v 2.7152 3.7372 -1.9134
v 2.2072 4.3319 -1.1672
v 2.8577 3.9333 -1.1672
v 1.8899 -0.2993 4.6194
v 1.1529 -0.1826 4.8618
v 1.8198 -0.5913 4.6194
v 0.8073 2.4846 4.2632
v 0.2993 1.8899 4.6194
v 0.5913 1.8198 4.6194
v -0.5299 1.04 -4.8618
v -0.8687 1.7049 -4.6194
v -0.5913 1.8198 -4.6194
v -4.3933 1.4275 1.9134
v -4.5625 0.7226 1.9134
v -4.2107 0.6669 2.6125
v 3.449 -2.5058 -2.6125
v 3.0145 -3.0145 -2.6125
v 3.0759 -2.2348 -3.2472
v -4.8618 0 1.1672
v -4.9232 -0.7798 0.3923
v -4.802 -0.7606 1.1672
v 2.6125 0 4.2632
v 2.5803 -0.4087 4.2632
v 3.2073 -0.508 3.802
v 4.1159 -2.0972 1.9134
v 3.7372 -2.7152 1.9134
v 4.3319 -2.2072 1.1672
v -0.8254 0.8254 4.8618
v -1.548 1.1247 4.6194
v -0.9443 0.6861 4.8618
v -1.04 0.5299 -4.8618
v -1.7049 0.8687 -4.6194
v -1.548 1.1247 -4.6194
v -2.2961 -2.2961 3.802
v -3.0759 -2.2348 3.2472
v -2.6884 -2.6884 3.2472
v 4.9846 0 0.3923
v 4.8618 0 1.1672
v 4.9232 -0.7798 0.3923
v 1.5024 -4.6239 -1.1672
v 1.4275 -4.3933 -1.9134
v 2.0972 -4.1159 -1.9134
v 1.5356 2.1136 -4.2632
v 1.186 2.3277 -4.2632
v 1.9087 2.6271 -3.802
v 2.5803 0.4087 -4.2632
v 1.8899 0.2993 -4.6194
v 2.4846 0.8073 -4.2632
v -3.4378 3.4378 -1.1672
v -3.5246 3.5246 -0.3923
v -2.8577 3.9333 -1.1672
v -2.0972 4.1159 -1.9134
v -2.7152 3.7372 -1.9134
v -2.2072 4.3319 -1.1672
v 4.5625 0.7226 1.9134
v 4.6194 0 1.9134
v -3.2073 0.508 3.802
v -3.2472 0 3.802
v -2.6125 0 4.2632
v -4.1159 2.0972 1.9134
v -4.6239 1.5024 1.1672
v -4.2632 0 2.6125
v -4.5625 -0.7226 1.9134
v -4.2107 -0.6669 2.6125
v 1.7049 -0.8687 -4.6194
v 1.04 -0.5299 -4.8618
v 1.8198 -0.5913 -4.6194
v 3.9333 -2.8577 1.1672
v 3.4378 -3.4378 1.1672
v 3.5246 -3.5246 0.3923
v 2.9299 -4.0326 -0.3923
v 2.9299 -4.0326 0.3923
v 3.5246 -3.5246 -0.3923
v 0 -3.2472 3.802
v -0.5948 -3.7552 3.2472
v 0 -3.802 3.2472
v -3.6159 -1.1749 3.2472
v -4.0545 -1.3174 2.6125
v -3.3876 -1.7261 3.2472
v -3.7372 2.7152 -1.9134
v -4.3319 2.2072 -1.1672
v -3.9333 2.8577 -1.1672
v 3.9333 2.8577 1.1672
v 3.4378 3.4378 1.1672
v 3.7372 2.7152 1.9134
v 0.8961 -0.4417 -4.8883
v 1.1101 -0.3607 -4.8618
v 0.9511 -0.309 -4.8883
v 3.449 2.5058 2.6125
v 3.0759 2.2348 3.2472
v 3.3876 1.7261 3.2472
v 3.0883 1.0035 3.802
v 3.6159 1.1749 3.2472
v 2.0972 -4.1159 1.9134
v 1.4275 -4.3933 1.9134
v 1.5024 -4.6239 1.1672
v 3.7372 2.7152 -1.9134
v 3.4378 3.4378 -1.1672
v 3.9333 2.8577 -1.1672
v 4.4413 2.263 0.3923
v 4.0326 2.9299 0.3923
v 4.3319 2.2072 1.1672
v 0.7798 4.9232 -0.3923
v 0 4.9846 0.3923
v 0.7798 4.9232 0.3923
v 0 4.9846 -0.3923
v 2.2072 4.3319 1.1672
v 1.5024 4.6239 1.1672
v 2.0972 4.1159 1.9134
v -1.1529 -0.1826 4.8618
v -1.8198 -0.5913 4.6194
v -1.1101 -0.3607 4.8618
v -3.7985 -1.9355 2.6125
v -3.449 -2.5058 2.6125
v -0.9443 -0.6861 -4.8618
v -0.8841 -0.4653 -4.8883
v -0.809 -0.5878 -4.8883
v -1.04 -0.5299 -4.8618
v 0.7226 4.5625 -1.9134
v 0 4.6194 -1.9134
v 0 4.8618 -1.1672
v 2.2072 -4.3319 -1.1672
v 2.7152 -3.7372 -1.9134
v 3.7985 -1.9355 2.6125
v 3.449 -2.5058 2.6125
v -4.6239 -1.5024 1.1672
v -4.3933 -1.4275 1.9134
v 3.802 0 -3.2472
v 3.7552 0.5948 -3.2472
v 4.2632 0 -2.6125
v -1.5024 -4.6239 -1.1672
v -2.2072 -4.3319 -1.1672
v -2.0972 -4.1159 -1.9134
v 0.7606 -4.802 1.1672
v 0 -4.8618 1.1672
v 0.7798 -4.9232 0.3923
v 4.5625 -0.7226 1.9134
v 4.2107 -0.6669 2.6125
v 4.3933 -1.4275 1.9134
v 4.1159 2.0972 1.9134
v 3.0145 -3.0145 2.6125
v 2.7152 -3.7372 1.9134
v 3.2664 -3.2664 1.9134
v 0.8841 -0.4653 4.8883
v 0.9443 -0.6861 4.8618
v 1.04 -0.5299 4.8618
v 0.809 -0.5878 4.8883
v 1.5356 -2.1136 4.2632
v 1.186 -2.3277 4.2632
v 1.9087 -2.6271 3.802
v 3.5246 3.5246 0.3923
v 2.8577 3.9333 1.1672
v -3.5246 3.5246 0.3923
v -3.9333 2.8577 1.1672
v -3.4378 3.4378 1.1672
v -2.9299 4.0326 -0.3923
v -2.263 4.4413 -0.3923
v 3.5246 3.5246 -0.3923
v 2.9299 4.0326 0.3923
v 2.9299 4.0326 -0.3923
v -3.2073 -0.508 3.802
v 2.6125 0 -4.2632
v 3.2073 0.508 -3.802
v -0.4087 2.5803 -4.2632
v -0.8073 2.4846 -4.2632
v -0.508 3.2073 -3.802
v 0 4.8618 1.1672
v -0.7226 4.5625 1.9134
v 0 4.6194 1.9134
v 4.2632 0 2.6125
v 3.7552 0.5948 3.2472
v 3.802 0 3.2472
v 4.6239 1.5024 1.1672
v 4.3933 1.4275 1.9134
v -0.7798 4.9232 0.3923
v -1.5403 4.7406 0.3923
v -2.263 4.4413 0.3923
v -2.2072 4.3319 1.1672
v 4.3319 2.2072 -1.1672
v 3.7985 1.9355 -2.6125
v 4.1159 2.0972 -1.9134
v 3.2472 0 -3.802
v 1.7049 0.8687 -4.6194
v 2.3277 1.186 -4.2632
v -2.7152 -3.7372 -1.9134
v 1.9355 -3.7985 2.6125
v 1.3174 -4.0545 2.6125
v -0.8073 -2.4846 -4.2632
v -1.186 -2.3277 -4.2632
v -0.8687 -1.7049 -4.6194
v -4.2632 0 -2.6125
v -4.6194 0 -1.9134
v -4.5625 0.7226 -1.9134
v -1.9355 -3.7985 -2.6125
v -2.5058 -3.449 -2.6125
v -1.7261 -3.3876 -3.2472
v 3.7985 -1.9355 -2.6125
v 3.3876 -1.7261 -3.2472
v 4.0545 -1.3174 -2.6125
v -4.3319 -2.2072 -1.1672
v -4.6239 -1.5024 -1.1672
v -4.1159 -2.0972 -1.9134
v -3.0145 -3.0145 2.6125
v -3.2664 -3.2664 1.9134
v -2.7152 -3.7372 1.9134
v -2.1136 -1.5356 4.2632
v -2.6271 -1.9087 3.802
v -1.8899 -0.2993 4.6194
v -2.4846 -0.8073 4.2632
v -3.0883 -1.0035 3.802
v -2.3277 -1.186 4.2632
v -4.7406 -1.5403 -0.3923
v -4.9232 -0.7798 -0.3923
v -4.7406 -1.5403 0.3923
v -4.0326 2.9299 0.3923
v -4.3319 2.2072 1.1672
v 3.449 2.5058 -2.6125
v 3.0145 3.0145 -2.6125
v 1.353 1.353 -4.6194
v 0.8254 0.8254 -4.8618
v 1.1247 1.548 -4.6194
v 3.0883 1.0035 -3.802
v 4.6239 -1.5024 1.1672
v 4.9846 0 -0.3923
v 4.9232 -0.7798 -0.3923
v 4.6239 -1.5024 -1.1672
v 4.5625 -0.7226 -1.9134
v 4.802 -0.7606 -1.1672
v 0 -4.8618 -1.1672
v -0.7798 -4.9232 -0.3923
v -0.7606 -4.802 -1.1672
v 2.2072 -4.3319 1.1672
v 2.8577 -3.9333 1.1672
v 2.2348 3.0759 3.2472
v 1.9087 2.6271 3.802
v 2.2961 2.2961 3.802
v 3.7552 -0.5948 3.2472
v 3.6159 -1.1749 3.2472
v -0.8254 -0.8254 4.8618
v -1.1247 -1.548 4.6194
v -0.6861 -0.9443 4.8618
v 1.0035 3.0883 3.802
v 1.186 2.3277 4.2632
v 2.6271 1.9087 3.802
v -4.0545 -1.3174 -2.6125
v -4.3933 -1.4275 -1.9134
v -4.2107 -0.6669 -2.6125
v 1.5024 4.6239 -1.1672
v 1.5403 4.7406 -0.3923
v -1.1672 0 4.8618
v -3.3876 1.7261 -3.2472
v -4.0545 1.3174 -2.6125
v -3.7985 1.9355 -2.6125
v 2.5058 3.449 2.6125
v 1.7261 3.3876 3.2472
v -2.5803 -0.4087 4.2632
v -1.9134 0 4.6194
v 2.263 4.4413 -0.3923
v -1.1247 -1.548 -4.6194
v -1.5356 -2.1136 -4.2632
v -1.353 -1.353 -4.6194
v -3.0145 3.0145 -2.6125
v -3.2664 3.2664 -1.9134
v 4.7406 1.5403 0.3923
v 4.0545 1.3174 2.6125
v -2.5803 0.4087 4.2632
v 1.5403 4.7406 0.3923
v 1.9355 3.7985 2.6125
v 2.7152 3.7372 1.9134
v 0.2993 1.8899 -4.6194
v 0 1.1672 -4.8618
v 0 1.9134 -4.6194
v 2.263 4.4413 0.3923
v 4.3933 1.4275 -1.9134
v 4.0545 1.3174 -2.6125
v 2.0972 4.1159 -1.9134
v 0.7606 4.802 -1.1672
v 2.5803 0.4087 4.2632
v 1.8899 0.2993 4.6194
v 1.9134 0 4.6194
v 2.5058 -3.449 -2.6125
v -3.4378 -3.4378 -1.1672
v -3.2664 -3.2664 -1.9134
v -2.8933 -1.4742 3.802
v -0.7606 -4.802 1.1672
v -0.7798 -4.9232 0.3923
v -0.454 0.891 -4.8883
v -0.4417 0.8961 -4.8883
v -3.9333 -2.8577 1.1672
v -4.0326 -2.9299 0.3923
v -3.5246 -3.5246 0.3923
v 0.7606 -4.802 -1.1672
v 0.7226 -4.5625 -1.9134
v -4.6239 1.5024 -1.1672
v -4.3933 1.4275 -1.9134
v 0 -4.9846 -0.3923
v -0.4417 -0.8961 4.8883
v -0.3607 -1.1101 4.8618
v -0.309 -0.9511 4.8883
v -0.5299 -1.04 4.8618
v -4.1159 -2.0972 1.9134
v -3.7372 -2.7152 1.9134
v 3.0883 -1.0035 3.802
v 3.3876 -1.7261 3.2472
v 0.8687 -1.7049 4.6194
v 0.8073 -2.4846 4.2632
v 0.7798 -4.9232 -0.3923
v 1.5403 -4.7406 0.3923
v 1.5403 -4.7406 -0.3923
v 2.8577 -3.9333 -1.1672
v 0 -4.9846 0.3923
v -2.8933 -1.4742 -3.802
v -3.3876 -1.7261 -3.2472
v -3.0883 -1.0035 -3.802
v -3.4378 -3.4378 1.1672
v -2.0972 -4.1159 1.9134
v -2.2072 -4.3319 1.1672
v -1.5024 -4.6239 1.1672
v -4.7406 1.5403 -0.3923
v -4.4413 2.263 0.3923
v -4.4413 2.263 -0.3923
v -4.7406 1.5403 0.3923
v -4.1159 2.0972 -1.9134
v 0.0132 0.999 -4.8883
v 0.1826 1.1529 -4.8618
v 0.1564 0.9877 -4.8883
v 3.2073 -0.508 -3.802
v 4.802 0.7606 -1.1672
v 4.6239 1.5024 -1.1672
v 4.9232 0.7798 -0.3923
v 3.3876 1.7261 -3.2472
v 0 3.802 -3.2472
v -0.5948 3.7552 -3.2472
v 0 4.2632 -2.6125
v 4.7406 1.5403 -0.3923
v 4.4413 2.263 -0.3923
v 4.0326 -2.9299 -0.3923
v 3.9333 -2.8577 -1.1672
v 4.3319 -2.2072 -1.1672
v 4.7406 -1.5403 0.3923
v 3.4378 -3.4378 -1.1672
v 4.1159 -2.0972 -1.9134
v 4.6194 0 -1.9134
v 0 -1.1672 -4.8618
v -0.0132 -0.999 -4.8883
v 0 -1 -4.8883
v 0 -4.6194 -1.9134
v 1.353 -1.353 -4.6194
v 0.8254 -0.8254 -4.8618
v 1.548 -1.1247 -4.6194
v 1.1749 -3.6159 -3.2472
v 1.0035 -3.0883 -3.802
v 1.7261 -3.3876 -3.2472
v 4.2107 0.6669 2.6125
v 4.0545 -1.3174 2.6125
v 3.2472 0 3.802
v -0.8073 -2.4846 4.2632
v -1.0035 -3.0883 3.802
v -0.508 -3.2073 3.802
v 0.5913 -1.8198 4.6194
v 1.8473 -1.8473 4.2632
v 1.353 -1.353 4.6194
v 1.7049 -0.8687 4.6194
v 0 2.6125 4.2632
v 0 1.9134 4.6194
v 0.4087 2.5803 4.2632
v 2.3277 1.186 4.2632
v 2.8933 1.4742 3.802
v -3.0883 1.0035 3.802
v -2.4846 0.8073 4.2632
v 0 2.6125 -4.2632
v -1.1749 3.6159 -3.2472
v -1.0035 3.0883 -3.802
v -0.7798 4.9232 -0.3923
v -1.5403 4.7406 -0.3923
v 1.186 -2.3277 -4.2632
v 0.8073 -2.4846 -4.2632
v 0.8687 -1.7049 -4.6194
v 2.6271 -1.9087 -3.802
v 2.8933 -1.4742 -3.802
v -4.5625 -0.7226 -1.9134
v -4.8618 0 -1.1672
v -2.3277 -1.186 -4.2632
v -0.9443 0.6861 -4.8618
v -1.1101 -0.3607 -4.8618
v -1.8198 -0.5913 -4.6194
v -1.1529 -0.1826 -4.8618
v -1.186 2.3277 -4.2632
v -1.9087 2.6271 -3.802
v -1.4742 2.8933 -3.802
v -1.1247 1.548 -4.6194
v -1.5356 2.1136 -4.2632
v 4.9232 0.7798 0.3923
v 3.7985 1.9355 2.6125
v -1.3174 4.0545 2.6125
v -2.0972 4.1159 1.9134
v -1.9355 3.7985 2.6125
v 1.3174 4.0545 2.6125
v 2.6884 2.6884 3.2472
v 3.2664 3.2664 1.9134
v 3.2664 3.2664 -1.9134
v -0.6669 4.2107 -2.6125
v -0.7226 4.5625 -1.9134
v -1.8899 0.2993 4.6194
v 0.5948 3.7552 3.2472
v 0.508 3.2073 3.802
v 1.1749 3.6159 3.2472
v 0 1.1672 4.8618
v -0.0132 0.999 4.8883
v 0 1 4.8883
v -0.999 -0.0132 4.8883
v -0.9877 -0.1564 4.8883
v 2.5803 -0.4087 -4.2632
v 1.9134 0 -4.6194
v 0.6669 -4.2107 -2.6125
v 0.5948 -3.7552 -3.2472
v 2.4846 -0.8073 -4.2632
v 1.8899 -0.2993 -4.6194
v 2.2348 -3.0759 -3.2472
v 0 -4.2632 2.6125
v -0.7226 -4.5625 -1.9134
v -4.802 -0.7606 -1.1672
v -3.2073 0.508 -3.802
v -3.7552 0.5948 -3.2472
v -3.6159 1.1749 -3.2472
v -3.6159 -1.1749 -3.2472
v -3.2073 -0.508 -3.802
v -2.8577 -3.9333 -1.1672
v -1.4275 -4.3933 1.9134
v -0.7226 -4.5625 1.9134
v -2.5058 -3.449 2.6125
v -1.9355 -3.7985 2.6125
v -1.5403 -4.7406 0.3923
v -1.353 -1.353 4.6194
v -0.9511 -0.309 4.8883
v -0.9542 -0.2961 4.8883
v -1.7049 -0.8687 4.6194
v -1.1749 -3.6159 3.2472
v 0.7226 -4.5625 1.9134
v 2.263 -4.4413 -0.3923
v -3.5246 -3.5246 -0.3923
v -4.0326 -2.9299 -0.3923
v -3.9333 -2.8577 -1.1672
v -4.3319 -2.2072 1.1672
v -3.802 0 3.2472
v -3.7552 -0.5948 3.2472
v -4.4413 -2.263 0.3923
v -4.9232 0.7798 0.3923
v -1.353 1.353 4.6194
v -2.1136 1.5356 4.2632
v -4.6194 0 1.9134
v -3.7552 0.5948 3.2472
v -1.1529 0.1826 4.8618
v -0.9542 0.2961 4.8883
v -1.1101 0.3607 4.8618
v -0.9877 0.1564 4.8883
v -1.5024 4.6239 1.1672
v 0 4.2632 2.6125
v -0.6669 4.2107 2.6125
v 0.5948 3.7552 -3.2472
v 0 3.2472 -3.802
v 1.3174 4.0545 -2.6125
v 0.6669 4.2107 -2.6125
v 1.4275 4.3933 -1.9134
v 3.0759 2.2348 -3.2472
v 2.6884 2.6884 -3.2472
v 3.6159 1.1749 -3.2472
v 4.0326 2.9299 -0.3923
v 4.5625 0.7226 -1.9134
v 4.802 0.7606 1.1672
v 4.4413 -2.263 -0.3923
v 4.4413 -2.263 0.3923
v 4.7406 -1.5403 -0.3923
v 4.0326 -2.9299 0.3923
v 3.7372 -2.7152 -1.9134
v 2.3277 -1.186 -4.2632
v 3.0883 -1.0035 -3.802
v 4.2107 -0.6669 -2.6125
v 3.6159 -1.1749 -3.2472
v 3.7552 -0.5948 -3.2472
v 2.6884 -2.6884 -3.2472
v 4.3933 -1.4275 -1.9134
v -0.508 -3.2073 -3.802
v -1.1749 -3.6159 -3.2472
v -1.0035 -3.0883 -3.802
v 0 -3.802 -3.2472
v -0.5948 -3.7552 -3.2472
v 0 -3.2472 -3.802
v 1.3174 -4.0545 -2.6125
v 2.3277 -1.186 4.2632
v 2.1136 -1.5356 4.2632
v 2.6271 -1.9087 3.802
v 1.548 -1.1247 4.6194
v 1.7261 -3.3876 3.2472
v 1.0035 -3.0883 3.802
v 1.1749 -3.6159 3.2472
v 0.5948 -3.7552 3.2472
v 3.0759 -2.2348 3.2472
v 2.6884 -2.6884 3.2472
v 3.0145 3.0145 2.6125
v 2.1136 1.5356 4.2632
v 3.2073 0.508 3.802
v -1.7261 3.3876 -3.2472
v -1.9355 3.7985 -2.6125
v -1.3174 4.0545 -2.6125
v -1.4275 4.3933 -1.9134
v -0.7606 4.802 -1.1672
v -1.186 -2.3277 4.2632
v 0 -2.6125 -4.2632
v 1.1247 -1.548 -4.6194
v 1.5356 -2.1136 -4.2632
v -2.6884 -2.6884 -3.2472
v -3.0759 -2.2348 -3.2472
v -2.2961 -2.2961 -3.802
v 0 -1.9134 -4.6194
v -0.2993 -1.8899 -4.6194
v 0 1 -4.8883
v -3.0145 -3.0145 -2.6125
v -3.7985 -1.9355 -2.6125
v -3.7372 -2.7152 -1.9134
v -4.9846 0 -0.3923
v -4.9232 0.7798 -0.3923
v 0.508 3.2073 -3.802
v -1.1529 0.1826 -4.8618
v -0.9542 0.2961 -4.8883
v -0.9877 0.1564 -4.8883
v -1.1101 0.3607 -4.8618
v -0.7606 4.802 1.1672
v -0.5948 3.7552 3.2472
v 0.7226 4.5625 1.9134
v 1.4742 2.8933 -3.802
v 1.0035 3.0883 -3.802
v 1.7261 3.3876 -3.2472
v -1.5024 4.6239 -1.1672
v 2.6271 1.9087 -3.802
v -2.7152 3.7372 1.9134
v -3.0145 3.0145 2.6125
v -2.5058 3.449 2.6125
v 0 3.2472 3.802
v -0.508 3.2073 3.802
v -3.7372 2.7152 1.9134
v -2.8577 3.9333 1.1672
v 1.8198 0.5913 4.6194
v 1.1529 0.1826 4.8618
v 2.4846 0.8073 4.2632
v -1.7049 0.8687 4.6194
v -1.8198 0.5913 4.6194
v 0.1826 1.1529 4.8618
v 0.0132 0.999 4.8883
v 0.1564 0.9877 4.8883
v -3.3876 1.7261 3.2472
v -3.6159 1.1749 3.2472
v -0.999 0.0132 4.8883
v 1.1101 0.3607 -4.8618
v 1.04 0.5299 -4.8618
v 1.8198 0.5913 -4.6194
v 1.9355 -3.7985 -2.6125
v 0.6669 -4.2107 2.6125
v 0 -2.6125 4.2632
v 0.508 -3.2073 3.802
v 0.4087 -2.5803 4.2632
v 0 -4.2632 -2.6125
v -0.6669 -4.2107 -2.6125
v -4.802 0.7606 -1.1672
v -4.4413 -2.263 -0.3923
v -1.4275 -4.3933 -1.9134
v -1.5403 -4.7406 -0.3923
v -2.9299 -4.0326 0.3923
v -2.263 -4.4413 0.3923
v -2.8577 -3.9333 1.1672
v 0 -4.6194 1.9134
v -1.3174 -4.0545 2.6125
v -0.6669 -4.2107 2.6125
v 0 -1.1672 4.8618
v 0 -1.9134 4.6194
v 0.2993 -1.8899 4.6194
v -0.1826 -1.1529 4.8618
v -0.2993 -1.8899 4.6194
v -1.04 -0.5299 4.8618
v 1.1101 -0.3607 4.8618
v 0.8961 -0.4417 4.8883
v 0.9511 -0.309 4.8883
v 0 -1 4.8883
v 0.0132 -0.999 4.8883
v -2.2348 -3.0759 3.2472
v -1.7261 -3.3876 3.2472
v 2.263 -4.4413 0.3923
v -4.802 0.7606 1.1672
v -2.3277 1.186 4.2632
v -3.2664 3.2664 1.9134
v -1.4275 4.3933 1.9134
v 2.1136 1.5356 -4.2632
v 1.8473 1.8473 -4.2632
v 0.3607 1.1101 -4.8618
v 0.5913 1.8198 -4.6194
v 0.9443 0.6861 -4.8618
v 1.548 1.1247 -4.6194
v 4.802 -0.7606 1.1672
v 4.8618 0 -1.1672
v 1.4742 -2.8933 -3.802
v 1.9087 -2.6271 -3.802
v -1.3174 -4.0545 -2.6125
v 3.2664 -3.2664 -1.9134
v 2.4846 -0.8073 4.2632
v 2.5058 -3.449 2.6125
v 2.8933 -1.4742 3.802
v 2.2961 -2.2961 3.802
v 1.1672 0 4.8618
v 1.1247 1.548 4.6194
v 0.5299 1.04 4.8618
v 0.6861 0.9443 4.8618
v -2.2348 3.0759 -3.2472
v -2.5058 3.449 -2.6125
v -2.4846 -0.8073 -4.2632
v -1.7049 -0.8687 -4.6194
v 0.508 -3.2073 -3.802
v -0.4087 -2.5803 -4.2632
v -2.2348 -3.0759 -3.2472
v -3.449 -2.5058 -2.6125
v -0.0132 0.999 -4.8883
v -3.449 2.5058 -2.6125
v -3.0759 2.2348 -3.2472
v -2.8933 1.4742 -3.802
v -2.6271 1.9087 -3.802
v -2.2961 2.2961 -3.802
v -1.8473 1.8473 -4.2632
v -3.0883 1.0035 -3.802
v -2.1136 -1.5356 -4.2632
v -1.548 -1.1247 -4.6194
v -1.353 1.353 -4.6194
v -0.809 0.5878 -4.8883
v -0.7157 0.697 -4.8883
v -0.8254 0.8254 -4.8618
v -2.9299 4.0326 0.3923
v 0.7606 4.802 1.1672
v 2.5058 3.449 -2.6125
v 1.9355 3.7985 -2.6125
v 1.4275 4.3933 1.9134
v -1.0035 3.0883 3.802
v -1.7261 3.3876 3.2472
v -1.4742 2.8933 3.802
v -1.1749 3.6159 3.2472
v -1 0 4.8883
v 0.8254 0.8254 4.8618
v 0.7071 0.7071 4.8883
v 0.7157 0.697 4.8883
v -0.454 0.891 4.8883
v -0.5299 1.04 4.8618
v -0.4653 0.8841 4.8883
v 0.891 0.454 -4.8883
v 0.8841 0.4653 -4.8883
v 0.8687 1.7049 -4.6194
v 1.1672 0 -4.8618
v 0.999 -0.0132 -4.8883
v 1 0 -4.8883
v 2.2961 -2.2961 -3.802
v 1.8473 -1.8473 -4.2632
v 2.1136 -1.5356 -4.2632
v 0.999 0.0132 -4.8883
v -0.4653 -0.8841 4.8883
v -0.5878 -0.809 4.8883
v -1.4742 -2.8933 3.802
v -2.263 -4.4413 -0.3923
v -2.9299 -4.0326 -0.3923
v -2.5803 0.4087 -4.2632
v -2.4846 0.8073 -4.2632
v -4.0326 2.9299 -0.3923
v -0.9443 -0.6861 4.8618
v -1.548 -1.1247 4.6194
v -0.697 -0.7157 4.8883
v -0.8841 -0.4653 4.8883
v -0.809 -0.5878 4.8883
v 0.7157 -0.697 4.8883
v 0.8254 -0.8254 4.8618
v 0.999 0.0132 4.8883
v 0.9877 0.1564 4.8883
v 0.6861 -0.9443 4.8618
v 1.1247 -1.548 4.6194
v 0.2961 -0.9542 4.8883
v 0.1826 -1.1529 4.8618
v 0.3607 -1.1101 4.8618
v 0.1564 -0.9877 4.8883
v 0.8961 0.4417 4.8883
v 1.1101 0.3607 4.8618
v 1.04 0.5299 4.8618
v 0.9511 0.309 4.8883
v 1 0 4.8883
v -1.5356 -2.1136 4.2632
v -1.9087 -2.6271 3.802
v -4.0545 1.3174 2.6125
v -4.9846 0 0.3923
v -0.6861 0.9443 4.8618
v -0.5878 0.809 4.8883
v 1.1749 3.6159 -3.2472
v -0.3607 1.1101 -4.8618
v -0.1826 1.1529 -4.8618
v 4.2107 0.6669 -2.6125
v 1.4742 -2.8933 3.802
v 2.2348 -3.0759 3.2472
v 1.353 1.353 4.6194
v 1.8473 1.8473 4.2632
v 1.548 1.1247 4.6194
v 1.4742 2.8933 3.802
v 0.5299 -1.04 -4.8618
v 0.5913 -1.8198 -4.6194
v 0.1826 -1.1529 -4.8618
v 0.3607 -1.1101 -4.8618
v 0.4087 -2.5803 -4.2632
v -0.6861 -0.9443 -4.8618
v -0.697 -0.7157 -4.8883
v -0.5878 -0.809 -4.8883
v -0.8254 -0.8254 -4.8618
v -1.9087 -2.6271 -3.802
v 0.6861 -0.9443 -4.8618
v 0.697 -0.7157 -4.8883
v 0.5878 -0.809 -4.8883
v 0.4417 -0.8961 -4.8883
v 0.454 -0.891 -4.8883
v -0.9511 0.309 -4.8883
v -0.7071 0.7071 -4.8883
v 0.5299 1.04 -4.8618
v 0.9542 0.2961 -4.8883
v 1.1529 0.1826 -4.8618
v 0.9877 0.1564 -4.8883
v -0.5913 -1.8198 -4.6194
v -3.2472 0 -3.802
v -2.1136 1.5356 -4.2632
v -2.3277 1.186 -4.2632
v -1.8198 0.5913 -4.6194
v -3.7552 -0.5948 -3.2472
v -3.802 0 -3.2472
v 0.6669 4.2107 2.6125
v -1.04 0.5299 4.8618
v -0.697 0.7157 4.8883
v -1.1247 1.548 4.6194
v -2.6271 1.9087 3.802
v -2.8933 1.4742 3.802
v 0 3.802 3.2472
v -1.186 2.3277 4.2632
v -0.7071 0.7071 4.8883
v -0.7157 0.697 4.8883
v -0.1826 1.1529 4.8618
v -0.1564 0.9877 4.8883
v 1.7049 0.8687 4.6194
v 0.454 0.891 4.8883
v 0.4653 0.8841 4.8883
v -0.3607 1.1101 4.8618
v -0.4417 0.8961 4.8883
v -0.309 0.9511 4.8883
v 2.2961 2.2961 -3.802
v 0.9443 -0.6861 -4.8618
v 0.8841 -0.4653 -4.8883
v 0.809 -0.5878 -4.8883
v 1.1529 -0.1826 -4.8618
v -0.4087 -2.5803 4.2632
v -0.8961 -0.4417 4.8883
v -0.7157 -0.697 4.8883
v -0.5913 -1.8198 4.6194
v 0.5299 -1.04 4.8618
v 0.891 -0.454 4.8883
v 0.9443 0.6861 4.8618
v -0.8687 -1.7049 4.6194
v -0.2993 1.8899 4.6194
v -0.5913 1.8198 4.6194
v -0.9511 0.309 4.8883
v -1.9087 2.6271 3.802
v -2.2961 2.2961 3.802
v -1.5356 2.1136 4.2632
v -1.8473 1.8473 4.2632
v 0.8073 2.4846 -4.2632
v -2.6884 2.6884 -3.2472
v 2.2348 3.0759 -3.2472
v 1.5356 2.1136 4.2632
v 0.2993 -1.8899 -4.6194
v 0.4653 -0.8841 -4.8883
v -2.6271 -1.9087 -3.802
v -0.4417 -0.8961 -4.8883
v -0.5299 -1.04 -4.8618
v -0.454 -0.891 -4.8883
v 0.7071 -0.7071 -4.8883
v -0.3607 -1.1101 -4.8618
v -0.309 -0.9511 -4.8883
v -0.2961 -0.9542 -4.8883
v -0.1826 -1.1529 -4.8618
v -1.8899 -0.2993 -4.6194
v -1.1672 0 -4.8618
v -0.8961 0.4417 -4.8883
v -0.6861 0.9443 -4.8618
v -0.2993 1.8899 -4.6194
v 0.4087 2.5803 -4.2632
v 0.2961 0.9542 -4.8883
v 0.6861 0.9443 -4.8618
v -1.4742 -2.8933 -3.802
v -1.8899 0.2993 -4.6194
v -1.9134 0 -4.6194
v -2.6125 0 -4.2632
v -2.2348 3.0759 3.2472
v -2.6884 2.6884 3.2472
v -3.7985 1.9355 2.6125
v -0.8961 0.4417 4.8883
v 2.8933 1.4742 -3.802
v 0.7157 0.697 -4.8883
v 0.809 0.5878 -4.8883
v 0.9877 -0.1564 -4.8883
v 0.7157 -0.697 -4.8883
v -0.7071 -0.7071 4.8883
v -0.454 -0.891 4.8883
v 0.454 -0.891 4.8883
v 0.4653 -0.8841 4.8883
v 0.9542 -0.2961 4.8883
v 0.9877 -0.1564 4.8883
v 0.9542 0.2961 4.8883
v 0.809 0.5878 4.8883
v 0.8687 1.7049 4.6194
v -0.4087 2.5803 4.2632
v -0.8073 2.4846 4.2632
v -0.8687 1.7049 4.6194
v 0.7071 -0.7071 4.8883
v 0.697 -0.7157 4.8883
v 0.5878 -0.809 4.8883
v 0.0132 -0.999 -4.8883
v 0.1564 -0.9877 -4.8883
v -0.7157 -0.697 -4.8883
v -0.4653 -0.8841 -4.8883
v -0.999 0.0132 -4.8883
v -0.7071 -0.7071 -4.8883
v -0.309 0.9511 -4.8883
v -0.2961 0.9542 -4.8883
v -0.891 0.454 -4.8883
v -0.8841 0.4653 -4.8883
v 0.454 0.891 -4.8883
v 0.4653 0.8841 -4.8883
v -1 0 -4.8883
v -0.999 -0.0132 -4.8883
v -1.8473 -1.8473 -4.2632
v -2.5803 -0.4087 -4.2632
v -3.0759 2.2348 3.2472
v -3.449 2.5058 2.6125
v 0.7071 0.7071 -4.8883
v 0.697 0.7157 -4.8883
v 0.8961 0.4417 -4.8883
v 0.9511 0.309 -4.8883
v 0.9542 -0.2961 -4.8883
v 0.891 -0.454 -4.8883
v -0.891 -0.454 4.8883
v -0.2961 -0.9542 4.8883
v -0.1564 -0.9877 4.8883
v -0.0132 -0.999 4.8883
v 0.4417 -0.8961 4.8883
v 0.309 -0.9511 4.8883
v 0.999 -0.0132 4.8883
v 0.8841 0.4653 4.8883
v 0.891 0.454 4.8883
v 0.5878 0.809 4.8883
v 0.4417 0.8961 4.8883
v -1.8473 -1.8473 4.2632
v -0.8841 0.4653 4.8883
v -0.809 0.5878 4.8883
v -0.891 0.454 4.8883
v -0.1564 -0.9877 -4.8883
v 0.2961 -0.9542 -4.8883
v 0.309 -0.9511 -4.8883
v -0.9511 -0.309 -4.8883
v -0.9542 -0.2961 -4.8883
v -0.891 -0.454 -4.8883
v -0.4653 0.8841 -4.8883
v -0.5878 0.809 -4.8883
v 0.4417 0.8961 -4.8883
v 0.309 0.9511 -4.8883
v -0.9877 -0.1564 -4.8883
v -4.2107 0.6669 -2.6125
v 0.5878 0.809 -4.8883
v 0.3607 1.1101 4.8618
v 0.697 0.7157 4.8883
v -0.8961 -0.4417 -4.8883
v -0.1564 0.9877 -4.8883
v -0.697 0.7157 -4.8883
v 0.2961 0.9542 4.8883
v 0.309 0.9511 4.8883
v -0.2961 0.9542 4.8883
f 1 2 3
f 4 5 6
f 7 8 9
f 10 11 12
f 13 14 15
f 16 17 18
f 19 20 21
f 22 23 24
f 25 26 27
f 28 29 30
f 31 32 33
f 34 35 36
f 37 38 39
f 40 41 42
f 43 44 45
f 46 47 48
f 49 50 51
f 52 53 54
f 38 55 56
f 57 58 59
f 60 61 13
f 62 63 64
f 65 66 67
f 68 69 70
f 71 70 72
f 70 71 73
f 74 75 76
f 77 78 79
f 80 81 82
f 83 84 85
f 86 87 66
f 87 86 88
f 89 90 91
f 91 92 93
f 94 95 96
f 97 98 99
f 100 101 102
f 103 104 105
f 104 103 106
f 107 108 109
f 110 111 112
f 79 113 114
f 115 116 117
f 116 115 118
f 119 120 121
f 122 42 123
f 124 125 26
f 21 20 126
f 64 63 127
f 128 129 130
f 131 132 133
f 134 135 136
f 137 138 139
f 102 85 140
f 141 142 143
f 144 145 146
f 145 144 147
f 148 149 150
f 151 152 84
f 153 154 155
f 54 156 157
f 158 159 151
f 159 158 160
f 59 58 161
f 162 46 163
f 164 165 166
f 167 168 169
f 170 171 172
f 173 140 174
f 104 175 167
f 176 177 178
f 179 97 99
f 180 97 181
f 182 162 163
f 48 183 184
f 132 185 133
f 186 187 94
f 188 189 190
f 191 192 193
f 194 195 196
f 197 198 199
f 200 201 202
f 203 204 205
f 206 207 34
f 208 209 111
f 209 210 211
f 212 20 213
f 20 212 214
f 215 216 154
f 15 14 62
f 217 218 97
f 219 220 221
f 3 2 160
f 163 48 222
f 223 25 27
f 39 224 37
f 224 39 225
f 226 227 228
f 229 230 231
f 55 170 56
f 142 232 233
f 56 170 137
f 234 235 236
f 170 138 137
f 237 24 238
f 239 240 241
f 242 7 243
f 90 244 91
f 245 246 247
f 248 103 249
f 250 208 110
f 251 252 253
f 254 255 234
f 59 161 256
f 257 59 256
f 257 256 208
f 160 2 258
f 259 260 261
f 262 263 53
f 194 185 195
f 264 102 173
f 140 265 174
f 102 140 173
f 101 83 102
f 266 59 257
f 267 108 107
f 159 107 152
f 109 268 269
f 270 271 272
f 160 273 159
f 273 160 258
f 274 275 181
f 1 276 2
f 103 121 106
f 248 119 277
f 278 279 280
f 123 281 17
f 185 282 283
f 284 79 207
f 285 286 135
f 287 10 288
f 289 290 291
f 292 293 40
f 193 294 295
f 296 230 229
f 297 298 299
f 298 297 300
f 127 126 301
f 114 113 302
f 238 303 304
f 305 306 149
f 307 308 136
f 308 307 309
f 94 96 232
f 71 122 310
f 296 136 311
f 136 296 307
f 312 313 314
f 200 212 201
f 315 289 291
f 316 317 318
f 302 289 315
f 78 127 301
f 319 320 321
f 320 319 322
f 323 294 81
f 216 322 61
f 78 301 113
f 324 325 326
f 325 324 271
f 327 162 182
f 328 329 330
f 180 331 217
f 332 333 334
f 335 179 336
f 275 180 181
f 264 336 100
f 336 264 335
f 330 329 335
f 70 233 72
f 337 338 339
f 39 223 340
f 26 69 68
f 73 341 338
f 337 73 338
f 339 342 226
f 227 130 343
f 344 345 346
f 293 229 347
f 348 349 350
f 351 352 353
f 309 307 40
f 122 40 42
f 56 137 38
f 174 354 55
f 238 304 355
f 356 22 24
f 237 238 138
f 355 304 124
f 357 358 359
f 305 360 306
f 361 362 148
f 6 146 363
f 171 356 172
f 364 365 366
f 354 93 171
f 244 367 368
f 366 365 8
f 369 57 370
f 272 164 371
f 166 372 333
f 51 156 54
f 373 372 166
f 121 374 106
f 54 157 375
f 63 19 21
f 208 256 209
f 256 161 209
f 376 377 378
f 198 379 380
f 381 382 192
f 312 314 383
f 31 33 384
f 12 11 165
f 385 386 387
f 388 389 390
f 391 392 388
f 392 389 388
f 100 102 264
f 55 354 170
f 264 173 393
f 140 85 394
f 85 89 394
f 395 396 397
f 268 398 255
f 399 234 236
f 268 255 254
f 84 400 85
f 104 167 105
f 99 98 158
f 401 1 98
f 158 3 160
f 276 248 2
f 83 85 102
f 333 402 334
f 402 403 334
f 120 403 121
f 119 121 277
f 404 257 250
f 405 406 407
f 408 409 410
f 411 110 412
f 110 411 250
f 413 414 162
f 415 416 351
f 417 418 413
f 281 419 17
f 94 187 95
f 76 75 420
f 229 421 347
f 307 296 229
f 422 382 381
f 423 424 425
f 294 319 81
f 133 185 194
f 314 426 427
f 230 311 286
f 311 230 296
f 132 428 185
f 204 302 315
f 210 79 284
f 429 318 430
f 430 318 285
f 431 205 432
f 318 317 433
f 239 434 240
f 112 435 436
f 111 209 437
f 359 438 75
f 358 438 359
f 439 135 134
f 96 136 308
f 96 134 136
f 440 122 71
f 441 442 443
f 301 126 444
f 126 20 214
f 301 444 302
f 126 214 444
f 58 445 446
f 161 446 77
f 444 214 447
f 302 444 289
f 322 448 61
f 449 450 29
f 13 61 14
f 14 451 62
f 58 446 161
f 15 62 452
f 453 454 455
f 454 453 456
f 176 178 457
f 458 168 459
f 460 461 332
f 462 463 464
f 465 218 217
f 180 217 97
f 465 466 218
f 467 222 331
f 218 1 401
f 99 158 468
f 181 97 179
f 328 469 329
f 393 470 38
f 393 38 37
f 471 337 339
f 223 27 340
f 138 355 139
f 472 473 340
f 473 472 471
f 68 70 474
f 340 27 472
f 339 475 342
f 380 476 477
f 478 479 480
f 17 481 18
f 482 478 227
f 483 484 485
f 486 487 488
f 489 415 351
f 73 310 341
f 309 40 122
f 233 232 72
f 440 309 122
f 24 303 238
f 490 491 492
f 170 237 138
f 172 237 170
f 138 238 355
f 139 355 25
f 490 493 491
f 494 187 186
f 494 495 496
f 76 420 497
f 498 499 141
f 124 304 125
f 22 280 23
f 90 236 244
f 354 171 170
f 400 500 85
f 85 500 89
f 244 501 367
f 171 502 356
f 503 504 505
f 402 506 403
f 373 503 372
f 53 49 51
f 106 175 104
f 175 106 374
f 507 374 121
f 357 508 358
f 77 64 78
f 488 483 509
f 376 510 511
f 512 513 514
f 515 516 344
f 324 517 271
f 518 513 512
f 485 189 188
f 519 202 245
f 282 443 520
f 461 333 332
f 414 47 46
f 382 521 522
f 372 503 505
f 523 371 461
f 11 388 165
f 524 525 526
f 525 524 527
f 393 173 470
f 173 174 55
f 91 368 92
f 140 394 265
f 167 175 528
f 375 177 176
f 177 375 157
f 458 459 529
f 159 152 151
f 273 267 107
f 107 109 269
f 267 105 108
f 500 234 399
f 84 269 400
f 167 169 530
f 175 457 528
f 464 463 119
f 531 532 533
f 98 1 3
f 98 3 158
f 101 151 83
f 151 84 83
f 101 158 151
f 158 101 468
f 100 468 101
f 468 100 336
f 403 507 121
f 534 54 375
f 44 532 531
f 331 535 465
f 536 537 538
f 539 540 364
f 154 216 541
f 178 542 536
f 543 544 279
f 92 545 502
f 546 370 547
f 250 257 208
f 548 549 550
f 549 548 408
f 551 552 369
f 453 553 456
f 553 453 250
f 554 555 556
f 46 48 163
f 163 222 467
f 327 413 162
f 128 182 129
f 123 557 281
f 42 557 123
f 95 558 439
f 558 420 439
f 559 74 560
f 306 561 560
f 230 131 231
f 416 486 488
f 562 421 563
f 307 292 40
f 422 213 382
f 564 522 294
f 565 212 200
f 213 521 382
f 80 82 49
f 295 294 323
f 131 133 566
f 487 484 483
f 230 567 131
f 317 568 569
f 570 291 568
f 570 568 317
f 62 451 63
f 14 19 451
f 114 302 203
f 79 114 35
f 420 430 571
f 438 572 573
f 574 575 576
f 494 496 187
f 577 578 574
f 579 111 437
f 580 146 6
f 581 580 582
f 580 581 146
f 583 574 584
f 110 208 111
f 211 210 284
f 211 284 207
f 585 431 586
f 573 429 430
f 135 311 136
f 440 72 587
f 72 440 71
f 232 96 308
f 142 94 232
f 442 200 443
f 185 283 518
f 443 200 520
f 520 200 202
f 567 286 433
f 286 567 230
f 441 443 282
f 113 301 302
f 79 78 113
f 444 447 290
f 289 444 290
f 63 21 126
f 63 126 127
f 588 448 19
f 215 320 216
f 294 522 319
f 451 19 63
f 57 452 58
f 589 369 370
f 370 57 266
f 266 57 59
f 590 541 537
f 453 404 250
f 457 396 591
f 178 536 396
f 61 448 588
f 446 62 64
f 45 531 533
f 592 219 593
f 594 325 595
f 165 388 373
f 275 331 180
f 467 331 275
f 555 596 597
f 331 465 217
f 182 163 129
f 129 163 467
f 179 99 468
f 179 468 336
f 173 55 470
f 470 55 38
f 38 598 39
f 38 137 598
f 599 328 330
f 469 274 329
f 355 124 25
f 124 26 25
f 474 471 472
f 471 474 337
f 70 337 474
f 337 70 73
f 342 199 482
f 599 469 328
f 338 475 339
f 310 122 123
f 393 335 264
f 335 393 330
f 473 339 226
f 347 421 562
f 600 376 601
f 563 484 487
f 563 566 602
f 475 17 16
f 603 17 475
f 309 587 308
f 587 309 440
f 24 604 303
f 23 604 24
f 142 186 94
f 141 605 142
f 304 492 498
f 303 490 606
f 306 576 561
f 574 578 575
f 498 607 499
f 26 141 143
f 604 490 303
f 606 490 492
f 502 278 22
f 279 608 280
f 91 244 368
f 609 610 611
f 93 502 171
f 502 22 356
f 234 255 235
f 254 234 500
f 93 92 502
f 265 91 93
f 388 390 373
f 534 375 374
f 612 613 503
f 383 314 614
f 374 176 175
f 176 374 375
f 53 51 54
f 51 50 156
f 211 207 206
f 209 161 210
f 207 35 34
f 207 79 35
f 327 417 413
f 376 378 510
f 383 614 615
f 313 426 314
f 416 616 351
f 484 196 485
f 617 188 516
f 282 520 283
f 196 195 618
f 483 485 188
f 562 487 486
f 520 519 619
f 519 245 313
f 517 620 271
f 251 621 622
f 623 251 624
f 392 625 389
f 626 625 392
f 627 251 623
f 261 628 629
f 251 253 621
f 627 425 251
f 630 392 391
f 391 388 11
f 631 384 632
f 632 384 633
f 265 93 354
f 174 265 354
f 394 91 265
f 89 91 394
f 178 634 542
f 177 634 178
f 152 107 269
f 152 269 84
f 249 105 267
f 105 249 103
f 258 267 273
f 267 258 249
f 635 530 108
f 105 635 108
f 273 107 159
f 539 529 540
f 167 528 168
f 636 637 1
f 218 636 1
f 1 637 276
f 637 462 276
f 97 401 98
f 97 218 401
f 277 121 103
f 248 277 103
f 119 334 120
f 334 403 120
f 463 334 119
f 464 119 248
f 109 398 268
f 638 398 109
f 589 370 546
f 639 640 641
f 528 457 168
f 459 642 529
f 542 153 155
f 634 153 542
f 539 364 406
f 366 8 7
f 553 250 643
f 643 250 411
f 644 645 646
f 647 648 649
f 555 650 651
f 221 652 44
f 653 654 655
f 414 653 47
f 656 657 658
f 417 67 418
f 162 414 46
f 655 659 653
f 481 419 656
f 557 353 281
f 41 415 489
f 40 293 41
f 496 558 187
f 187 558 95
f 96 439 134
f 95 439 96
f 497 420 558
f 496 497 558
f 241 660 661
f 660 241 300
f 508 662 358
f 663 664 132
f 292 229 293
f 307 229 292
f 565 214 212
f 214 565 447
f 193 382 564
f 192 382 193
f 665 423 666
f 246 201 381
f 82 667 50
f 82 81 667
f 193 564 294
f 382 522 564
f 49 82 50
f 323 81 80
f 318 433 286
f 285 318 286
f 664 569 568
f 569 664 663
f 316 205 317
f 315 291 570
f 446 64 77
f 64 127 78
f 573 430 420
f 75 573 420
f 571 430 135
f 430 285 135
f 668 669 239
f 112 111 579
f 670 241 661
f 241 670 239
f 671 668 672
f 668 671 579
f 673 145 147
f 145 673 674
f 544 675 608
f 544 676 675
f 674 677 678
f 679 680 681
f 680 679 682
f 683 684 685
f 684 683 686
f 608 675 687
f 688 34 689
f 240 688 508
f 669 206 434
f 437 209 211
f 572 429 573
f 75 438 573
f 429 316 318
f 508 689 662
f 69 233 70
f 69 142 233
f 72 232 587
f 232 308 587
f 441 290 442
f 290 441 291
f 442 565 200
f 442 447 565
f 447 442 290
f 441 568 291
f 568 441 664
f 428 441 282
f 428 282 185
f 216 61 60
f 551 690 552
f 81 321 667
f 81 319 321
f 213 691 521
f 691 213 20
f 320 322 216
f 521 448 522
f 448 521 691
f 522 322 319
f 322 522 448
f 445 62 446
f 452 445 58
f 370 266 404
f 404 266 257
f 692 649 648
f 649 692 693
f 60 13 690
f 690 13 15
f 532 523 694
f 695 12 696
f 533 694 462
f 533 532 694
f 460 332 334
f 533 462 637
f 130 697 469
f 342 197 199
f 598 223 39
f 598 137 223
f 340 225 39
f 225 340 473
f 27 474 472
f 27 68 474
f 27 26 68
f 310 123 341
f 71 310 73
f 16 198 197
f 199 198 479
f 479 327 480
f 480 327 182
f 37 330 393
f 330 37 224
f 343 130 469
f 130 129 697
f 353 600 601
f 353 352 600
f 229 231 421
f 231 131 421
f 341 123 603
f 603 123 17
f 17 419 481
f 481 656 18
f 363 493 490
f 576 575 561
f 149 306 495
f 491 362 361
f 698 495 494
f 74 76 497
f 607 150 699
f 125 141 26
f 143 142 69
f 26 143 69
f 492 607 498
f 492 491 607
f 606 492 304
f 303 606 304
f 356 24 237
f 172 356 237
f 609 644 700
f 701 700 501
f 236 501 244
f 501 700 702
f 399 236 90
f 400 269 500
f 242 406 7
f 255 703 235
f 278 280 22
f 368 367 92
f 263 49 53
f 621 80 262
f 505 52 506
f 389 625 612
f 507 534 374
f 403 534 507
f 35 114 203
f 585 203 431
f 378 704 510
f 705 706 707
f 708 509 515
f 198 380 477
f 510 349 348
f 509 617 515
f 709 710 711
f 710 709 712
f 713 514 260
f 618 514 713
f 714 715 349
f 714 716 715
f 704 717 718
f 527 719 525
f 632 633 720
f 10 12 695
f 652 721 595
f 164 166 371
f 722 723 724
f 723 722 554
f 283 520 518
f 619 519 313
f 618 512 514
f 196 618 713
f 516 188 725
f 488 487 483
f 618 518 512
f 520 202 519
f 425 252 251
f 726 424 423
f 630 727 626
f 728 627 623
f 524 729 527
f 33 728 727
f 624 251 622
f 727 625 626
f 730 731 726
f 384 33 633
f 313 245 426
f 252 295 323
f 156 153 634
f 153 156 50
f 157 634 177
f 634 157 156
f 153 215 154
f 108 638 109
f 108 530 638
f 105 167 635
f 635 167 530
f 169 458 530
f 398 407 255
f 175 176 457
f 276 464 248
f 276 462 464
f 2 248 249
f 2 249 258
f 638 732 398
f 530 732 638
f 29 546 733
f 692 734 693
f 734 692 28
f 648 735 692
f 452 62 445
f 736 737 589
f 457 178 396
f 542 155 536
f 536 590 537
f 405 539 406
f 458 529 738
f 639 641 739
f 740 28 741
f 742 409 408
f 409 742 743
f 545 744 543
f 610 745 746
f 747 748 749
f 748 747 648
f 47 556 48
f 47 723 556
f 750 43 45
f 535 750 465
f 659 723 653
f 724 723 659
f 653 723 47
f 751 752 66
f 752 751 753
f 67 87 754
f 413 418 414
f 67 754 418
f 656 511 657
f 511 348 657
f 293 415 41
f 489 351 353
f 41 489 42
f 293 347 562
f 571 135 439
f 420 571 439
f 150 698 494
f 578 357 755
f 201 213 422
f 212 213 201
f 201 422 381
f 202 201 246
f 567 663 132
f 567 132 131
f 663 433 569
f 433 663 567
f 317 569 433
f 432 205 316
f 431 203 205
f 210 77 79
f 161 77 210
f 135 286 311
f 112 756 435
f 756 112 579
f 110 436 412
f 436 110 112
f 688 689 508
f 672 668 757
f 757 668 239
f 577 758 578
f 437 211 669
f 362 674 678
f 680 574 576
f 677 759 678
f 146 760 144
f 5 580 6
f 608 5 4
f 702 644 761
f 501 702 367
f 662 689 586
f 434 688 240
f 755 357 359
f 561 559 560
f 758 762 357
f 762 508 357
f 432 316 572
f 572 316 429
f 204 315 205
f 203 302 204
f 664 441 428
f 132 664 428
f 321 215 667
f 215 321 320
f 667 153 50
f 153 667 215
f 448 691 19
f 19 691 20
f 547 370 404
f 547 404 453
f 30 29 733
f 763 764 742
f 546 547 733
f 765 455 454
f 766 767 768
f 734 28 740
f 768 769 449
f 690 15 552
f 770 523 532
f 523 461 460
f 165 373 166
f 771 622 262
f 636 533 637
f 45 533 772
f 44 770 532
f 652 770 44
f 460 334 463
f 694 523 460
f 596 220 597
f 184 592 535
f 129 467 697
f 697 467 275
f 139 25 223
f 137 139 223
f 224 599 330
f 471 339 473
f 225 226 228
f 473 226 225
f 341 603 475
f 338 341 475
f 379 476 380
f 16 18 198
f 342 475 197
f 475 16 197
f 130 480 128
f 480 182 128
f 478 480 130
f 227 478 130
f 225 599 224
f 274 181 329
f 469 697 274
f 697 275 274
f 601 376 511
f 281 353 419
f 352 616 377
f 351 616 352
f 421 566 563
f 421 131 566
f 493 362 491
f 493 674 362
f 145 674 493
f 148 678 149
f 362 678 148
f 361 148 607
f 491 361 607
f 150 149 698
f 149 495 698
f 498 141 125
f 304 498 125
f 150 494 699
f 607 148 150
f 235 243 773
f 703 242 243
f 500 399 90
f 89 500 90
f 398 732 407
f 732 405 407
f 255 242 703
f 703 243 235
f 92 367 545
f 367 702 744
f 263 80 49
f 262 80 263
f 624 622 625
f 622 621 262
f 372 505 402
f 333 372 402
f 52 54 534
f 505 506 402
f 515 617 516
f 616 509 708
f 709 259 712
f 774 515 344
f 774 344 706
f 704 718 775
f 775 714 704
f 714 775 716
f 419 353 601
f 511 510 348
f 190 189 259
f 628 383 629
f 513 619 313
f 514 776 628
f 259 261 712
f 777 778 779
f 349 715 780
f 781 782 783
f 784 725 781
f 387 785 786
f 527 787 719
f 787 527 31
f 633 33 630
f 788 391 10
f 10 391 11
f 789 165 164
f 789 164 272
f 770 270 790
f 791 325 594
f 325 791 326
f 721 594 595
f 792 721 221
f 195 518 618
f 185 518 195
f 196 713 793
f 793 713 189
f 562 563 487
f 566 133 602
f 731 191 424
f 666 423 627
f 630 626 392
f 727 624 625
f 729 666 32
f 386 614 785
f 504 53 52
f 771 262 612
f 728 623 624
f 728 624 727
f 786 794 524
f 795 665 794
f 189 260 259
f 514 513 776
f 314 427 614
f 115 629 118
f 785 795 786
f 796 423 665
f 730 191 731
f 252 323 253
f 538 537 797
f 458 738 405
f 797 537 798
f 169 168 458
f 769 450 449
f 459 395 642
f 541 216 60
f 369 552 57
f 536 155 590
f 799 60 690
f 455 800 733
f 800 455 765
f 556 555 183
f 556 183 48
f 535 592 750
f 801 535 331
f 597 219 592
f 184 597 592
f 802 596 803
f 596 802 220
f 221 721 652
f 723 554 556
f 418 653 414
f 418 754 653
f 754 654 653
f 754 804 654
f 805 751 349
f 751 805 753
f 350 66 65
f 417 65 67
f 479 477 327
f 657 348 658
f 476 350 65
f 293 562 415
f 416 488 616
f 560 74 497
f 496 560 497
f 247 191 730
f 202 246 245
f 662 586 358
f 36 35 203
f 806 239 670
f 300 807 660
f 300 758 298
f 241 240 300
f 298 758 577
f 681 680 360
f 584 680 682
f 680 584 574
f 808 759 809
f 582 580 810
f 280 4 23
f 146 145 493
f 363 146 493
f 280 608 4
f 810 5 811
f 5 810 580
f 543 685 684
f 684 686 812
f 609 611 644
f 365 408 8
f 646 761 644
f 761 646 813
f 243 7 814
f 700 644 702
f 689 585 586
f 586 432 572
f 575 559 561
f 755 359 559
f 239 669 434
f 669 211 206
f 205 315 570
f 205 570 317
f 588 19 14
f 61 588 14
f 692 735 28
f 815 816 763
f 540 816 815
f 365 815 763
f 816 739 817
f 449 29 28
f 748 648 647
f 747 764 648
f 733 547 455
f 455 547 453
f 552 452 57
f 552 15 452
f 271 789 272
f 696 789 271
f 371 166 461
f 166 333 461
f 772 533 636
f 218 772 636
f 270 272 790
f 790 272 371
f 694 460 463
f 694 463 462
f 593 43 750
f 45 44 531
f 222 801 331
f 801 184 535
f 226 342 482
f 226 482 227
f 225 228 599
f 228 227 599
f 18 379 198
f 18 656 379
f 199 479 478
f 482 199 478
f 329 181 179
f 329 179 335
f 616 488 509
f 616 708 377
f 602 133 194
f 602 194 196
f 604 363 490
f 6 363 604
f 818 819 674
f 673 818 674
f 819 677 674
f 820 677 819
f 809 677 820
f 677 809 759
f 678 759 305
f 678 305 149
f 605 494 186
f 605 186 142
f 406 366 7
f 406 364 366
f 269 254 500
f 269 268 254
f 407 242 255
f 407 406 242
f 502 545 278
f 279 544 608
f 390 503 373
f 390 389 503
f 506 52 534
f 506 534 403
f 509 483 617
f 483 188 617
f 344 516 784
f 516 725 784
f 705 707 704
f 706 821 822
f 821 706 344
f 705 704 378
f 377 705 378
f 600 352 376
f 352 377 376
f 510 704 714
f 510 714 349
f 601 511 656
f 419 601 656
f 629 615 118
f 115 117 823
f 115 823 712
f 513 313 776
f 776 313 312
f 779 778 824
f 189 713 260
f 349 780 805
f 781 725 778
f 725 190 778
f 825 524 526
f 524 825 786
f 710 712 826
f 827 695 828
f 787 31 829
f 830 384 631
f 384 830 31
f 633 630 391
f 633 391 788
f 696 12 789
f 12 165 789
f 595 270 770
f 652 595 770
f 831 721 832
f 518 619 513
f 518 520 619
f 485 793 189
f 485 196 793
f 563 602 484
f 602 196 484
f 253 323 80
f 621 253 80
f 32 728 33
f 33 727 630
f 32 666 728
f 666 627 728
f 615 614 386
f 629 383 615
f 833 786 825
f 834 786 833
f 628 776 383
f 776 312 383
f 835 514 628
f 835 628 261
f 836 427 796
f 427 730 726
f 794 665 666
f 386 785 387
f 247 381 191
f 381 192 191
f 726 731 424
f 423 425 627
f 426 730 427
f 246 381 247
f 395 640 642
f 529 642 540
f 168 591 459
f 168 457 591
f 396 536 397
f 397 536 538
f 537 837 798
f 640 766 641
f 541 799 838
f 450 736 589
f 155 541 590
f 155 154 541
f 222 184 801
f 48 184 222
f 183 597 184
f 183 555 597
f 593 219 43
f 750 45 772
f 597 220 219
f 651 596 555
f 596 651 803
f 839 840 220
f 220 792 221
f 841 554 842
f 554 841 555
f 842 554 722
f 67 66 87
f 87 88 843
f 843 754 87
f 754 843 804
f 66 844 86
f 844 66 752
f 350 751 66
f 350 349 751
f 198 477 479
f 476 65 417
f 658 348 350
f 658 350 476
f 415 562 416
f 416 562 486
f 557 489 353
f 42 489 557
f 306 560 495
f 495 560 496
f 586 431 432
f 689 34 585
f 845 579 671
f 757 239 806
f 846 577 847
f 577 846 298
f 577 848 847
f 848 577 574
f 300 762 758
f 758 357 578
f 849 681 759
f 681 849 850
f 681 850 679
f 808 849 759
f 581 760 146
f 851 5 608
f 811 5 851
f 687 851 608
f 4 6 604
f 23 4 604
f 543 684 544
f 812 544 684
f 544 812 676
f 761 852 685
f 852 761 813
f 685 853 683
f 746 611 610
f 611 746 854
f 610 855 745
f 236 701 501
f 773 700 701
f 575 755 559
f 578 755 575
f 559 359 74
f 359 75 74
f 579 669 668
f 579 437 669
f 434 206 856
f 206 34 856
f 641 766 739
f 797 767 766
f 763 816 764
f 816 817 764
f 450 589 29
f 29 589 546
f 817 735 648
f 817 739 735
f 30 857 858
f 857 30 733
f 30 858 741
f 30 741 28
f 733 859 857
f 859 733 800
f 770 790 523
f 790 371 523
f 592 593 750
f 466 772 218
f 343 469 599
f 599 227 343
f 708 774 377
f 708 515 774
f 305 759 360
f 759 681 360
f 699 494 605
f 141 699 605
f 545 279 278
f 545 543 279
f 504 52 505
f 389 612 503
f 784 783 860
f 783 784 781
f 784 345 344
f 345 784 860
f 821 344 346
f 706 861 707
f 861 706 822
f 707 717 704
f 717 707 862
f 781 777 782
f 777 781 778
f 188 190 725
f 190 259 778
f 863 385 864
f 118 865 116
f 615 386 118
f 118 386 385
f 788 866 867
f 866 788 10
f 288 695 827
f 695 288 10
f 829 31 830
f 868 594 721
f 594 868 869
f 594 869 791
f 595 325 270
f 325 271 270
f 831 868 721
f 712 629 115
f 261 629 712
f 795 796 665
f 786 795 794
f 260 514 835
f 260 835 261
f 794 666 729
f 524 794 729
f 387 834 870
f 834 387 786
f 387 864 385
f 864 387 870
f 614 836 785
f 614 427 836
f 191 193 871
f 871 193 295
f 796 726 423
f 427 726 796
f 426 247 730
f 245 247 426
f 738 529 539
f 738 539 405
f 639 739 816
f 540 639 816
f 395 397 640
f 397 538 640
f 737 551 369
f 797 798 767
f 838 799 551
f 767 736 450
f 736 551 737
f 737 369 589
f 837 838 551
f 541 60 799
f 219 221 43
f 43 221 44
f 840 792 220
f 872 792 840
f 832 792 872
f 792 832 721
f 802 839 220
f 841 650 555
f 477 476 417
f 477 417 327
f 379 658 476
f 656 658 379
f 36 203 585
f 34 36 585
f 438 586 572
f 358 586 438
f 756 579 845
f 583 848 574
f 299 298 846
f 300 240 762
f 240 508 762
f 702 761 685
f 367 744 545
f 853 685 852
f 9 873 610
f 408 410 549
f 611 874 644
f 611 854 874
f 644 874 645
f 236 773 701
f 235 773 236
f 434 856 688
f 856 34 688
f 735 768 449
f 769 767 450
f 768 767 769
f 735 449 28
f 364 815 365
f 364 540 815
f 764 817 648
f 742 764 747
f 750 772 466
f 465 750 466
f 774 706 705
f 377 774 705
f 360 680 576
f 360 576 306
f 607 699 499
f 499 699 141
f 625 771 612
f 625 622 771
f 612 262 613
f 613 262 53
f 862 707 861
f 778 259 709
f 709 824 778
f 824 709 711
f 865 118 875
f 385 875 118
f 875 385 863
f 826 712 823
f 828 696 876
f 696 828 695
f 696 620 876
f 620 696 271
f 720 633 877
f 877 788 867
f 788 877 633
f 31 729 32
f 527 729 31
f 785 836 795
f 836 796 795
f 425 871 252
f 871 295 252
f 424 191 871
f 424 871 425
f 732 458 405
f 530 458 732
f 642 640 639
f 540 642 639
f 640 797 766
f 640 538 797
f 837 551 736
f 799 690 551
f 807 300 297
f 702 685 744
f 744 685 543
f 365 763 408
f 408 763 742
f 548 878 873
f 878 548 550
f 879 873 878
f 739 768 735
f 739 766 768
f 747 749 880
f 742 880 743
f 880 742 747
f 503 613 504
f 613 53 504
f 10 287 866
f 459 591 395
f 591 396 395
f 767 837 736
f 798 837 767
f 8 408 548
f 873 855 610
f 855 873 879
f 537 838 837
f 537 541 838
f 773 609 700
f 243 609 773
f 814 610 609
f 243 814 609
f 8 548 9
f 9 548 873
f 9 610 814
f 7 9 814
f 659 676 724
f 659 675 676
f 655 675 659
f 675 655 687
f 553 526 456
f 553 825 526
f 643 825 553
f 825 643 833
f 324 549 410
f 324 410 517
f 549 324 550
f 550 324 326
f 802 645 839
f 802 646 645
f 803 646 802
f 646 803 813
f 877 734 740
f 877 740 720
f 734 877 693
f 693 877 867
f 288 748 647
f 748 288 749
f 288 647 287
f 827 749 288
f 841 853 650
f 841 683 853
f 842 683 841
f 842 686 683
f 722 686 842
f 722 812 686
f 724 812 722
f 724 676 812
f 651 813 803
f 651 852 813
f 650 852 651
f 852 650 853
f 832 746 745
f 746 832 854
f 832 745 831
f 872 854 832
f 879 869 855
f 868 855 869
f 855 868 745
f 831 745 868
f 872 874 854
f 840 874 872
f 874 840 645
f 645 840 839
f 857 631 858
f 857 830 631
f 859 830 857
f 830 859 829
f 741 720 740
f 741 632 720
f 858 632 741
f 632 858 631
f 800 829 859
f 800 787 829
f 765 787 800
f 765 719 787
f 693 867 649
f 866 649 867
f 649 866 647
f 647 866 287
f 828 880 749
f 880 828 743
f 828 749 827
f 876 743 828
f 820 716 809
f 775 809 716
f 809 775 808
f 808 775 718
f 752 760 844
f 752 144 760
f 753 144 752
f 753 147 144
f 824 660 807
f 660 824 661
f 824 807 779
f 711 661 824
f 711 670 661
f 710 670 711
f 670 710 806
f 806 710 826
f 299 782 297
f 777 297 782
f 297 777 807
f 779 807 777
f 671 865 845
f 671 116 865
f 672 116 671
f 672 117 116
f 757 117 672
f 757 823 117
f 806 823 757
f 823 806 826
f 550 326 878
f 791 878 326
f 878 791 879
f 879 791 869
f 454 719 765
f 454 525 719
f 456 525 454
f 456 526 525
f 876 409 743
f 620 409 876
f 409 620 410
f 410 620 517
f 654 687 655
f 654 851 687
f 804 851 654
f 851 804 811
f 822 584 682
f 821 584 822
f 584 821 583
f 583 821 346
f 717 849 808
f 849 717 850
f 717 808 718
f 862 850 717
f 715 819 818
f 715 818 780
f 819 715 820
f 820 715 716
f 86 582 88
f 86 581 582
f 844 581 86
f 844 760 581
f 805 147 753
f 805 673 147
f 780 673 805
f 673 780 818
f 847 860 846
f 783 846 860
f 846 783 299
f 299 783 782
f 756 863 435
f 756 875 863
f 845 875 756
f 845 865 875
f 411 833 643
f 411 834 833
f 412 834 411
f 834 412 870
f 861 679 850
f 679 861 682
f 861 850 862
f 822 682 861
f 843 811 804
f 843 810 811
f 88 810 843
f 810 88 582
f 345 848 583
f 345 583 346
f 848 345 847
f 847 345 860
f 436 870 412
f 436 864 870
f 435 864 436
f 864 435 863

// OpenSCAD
//Author: Chris Correll
//Date: 1/23/2023
//Description: A module for a spherical bead.

$fn = 40;

module bead(w,h_w){
  difference(){
   sphere(d=w);
  # cylinder(h=w,d=h_w,center=true);
  }
}


bead(10,2);
